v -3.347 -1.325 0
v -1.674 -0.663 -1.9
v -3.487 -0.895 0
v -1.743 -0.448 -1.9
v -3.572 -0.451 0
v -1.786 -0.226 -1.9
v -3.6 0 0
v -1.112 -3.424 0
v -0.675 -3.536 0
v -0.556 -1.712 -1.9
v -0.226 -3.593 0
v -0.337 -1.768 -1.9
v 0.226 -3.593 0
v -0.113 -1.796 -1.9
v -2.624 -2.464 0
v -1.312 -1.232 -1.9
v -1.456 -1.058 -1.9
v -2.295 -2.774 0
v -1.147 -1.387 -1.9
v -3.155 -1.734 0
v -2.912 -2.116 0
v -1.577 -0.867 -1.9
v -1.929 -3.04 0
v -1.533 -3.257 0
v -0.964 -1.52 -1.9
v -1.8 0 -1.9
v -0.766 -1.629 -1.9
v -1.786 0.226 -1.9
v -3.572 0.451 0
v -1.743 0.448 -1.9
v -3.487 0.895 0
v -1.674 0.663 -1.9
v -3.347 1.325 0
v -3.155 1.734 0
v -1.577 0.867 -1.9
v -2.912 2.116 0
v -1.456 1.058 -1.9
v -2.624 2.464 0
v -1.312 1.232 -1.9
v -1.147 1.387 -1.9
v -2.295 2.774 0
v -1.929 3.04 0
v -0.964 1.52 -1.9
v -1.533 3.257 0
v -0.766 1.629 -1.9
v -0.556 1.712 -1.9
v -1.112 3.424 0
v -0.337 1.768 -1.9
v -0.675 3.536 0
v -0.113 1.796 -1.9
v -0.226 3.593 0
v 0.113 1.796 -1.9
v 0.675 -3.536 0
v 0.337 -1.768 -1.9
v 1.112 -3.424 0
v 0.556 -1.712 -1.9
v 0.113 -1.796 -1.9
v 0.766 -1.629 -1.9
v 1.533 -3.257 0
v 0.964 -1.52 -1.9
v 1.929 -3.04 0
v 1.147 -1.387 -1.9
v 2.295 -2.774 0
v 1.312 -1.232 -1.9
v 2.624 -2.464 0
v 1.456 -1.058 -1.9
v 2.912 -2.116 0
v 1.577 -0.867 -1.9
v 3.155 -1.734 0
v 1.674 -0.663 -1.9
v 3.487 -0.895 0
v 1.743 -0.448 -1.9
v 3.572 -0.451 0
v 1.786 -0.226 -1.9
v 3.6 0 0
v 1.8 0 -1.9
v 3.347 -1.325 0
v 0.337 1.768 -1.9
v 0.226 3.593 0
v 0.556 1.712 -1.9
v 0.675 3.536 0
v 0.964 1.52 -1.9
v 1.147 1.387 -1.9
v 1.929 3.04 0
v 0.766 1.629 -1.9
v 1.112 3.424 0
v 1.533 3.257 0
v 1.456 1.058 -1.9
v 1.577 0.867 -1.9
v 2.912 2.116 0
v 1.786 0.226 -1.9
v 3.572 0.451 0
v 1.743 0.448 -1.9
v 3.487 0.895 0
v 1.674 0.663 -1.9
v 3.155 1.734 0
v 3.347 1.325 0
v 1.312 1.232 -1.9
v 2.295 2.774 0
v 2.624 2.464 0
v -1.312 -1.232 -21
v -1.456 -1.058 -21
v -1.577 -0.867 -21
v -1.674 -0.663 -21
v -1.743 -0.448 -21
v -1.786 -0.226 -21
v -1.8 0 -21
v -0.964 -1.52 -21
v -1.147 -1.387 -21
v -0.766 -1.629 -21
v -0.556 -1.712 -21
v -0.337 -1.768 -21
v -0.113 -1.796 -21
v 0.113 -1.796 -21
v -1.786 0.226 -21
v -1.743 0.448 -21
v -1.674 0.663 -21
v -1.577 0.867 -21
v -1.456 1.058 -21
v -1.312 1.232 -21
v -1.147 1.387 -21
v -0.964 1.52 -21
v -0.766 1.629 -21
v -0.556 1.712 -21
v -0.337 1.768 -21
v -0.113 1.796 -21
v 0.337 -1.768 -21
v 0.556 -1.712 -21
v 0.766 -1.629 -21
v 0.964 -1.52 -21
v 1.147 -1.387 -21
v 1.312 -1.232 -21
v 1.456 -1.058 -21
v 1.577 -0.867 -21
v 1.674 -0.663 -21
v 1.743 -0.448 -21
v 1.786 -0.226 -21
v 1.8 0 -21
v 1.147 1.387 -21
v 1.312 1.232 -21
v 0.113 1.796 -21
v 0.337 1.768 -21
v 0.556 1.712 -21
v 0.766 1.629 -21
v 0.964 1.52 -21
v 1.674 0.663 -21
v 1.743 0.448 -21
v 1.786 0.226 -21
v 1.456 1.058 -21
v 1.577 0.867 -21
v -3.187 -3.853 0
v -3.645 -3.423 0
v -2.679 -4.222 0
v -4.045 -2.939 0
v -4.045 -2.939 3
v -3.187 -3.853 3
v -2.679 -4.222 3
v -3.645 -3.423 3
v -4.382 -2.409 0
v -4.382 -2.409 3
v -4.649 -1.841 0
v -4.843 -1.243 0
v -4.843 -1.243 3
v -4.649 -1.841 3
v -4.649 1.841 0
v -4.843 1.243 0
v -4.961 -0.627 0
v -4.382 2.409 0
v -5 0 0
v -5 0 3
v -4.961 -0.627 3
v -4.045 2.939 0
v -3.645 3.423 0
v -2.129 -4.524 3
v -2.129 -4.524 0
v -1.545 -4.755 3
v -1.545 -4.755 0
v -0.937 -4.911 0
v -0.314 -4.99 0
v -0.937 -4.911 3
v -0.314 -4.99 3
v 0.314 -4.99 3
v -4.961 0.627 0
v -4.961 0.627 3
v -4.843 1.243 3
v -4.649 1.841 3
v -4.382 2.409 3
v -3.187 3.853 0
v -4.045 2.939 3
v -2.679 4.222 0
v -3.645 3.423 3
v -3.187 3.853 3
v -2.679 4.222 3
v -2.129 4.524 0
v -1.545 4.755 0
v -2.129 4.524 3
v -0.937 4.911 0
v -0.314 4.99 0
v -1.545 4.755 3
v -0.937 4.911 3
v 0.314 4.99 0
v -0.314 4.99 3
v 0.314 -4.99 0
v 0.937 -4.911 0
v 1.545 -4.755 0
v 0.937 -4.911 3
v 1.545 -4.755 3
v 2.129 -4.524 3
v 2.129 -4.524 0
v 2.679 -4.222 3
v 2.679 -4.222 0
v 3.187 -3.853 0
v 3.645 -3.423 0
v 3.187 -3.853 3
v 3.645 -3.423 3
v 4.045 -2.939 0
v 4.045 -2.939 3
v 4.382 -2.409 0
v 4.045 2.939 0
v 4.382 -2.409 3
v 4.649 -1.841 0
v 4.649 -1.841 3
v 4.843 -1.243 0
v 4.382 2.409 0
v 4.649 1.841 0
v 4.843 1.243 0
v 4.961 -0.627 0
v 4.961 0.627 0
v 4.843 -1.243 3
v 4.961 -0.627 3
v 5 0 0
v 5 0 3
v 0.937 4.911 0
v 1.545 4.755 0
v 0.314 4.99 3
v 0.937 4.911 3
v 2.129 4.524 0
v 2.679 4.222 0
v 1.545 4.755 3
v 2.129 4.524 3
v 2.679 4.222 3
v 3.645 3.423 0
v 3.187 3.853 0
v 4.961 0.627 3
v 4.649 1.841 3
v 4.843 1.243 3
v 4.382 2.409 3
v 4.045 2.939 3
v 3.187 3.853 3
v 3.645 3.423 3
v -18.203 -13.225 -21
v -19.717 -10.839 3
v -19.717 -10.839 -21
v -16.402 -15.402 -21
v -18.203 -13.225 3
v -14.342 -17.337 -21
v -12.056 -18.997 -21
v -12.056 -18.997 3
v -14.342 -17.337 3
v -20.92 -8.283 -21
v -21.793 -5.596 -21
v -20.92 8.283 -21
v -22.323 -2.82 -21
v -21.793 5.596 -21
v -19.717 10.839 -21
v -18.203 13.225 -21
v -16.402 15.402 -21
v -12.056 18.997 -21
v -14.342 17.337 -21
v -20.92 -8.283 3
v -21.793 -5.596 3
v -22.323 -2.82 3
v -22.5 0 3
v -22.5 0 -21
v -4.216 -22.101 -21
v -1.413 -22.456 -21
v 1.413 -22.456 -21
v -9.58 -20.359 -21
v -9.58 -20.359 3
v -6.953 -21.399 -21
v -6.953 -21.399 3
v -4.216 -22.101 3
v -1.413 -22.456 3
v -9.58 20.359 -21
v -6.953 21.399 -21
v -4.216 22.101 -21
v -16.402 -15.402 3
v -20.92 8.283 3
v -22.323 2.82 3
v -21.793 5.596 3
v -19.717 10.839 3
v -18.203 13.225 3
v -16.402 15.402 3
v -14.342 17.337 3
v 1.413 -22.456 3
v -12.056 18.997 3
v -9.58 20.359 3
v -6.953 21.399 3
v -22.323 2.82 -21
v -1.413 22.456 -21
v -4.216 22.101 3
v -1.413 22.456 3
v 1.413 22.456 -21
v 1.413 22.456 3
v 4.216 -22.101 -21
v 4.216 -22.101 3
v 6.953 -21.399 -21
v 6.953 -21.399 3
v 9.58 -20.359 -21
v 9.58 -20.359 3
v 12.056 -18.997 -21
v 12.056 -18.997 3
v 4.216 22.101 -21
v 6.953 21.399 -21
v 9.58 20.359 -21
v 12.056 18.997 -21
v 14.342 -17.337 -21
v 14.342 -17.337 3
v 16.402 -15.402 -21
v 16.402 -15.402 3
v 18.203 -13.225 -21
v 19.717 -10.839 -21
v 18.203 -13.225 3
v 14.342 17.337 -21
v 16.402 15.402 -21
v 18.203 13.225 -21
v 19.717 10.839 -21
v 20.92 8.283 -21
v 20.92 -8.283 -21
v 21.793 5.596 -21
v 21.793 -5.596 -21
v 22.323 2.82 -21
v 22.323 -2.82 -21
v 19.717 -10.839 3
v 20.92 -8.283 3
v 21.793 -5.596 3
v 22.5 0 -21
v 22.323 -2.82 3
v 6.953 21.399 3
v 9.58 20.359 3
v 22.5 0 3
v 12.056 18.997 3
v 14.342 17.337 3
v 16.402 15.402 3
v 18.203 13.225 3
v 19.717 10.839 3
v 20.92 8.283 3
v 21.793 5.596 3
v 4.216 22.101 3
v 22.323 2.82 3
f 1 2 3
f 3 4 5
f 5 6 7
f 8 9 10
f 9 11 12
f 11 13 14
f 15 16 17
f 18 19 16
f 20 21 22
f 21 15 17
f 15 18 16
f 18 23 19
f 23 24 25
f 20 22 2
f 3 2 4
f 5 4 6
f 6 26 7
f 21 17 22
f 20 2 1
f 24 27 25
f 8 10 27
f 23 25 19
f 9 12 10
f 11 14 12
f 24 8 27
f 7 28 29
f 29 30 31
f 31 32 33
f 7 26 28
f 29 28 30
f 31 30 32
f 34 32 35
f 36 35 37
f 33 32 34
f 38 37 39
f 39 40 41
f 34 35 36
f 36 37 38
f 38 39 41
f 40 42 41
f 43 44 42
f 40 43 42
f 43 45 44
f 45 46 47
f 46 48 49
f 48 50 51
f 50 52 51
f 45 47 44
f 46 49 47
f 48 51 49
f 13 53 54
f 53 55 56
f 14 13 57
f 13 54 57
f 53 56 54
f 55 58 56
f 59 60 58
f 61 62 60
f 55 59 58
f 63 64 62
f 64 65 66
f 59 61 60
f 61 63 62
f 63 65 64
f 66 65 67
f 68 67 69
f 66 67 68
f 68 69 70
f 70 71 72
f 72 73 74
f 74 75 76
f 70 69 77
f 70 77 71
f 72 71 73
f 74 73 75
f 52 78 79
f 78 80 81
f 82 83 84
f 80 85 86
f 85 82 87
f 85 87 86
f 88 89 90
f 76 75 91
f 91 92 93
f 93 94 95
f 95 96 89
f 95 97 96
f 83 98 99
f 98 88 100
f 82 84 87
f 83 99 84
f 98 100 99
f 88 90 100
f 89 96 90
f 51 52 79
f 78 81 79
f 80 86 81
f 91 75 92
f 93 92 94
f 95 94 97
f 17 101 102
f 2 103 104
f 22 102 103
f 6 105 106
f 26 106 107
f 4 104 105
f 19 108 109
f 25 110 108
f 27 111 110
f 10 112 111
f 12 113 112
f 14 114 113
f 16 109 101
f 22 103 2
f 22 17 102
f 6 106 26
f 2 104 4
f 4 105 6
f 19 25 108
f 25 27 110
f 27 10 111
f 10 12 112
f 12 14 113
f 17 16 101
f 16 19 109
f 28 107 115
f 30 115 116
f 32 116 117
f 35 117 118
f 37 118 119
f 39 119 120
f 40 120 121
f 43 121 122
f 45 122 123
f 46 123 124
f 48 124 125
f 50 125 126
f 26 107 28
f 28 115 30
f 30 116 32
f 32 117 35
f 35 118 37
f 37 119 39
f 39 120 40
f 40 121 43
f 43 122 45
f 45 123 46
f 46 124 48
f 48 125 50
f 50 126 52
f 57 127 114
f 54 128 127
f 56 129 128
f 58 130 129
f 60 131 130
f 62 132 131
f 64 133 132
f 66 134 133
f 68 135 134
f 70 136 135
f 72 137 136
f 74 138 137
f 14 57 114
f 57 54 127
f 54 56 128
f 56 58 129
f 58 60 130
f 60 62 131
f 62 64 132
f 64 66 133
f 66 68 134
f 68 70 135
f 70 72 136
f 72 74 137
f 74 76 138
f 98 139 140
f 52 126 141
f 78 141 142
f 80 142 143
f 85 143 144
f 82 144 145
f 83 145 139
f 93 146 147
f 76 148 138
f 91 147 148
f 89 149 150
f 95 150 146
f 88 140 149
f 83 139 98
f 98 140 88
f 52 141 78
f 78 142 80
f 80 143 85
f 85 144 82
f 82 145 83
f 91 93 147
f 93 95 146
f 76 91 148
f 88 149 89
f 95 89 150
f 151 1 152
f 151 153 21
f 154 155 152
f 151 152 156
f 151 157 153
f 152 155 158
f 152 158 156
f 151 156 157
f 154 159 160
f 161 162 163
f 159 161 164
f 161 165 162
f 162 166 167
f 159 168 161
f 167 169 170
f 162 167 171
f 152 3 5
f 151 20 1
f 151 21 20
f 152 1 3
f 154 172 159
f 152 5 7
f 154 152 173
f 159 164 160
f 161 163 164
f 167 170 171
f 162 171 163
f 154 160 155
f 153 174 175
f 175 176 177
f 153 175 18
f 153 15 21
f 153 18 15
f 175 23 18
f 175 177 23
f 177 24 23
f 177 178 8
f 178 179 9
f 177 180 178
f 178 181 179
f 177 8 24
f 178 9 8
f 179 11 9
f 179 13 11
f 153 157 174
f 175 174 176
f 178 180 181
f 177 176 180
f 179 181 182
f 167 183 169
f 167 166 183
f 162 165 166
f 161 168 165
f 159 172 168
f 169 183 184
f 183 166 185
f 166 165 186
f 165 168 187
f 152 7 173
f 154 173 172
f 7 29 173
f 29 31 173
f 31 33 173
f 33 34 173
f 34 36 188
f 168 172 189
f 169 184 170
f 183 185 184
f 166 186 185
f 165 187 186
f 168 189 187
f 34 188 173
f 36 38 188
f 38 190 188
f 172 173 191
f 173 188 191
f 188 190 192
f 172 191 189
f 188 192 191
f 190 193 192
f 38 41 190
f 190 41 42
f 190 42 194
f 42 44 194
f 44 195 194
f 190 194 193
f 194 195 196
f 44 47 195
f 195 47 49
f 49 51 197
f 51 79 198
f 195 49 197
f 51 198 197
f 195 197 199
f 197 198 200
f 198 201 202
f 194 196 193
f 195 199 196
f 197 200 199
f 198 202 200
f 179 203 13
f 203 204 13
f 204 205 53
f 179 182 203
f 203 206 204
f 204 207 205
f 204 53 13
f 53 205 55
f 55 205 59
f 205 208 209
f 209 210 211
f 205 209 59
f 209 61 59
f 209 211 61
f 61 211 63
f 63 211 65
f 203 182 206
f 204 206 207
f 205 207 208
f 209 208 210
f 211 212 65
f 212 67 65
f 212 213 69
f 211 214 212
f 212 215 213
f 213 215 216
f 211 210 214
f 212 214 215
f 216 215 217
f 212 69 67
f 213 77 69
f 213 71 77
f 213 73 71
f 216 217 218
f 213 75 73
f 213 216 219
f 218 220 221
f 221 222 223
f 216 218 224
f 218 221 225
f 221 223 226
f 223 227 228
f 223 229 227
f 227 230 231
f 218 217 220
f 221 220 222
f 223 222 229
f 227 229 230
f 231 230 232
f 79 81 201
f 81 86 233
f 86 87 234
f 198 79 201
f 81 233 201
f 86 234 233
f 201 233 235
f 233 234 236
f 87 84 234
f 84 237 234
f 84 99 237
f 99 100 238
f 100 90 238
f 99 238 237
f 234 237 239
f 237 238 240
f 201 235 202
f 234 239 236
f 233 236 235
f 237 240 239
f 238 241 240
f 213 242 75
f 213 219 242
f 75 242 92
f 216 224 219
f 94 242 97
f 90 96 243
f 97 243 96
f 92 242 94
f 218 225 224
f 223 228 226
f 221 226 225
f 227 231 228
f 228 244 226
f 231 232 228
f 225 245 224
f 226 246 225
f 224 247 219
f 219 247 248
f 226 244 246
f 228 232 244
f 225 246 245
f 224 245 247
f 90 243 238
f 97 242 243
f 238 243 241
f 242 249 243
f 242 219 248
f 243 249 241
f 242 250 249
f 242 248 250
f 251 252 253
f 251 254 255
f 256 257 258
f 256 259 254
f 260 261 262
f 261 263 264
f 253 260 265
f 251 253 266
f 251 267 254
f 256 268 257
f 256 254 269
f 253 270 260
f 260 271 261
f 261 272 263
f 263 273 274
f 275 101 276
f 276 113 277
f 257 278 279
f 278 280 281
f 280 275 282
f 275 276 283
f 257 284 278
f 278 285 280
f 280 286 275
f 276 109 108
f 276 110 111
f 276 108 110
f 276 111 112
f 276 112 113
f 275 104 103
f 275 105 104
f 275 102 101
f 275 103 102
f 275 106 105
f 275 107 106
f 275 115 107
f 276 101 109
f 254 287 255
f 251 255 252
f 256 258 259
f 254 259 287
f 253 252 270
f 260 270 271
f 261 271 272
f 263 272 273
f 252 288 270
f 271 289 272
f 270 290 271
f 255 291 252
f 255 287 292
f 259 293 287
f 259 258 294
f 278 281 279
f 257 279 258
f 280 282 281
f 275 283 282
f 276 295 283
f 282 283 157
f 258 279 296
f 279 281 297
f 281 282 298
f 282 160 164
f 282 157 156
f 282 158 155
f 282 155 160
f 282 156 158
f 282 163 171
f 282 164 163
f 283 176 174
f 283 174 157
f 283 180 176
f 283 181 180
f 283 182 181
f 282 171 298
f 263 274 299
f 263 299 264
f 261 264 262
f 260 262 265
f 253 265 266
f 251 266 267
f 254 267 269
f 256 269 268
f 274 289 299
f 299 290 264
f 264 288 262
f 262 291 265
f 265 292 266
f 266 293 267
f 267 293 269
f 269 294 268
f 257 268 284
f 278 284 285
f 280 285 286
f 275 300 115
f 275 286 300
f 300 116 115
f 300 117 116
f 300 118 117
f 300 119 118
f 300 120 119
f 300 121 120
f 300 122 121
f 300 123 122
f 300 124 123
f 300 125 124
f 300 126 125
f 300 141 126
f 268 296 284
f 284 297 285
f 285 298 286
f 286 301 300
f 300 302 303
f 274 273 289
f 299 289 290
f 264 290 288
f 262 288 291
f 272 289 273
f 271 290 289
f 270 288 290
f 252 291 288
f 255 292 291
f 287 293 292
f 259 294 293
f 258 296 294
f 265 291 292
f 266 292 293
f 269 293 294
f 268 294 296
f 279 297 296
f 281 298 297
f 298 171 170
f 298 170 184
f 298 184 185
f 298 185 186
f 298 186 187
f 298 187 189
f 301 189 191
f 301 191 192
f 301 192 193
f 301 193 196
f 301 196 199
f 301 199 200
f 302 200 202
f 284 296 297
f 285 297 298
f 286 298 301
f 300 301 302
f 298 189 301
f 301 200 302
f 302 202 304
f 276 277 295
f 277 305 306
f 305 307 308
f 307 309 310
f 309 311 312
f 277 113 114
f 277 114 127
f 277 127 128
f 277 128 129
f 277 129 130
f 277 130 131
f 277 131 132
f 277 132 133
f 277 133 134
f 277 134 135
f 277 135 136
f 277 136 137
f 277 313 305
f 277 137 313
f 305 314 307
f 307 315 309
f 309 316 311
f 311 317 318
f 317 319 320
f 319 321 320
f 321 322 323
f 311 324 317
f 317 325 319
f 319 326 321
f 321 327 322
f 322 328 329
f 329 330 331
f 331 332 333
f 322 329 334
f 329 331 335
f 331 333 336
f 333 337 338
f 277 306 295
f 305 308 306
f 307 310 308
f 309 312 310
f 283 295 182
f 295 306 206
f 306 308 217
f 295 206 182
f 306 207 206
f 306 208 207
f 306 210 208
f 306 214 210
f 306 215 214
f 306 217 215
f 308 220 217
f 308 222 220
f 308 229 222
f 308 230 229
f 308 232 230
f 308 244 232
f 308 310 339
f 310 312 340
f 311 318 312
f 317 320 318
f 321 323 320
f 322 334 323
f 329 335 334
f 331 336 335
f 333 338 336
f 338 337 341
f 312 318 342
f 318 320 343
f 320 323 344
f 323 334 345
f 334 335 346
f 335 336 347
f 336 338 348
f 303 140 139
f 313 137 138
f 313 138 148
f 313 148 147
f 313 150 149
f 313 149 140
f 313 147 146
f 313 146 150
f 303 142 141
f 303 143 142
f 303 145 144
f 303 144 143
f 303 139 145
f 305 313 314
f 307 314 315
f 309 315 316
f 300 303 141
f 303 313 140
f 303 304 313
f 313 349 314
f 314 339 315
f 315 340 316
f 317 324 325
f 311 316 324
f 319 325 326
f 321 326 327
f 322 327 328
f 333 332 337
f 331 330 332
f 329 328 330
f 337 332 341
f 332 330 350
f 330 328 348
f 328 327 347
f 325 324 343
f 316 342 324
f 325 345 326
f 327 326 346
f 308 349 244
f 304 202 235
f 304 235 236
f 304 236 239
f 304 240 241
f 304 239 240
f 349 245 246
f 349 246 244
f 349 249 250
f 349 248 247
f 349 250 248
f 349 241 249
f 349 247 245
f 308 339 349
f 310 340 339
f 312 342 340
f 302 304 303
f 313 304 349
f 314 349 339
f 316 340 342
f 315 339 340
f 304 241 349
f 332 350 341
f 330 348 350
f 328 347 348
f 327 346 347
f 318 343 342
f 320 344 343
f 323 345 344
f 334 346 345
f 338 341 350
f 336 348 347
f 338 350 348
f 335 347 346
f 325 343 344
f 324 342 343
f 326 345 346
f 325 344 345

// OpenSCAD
$fn = 50;

difference() {
	union() {
		translate(v = [0, 0, -21.0]) {
			cylinder(h = 24, r = 22.5);
		}
	}
	union() {
		translate(v = [0, 0, 0]) {
			rotate(a = [0, 0, 0]) {
				difference() {
					union() {
						translate(v = [0, 0, -24.0]) {
							cylinder(h = 24, r = 1.5);
						}
						translate(v = [0, 0, -1.9]) {
							cylinder(h = 1.9, r1 = 1.8, r2 = 3.6);
						}
						translate(v = [0, 0, -24.0]) {
							cylinder(h = 24, r = 1.8);
						}
						translate(v = [0, 0, -24.0]) {
							cylinder(h = 24, r = 1.5);
						}
					}
					union();
				}
			}
		}
		#cylinder(h = 3, r = 5.0);
	}
}
